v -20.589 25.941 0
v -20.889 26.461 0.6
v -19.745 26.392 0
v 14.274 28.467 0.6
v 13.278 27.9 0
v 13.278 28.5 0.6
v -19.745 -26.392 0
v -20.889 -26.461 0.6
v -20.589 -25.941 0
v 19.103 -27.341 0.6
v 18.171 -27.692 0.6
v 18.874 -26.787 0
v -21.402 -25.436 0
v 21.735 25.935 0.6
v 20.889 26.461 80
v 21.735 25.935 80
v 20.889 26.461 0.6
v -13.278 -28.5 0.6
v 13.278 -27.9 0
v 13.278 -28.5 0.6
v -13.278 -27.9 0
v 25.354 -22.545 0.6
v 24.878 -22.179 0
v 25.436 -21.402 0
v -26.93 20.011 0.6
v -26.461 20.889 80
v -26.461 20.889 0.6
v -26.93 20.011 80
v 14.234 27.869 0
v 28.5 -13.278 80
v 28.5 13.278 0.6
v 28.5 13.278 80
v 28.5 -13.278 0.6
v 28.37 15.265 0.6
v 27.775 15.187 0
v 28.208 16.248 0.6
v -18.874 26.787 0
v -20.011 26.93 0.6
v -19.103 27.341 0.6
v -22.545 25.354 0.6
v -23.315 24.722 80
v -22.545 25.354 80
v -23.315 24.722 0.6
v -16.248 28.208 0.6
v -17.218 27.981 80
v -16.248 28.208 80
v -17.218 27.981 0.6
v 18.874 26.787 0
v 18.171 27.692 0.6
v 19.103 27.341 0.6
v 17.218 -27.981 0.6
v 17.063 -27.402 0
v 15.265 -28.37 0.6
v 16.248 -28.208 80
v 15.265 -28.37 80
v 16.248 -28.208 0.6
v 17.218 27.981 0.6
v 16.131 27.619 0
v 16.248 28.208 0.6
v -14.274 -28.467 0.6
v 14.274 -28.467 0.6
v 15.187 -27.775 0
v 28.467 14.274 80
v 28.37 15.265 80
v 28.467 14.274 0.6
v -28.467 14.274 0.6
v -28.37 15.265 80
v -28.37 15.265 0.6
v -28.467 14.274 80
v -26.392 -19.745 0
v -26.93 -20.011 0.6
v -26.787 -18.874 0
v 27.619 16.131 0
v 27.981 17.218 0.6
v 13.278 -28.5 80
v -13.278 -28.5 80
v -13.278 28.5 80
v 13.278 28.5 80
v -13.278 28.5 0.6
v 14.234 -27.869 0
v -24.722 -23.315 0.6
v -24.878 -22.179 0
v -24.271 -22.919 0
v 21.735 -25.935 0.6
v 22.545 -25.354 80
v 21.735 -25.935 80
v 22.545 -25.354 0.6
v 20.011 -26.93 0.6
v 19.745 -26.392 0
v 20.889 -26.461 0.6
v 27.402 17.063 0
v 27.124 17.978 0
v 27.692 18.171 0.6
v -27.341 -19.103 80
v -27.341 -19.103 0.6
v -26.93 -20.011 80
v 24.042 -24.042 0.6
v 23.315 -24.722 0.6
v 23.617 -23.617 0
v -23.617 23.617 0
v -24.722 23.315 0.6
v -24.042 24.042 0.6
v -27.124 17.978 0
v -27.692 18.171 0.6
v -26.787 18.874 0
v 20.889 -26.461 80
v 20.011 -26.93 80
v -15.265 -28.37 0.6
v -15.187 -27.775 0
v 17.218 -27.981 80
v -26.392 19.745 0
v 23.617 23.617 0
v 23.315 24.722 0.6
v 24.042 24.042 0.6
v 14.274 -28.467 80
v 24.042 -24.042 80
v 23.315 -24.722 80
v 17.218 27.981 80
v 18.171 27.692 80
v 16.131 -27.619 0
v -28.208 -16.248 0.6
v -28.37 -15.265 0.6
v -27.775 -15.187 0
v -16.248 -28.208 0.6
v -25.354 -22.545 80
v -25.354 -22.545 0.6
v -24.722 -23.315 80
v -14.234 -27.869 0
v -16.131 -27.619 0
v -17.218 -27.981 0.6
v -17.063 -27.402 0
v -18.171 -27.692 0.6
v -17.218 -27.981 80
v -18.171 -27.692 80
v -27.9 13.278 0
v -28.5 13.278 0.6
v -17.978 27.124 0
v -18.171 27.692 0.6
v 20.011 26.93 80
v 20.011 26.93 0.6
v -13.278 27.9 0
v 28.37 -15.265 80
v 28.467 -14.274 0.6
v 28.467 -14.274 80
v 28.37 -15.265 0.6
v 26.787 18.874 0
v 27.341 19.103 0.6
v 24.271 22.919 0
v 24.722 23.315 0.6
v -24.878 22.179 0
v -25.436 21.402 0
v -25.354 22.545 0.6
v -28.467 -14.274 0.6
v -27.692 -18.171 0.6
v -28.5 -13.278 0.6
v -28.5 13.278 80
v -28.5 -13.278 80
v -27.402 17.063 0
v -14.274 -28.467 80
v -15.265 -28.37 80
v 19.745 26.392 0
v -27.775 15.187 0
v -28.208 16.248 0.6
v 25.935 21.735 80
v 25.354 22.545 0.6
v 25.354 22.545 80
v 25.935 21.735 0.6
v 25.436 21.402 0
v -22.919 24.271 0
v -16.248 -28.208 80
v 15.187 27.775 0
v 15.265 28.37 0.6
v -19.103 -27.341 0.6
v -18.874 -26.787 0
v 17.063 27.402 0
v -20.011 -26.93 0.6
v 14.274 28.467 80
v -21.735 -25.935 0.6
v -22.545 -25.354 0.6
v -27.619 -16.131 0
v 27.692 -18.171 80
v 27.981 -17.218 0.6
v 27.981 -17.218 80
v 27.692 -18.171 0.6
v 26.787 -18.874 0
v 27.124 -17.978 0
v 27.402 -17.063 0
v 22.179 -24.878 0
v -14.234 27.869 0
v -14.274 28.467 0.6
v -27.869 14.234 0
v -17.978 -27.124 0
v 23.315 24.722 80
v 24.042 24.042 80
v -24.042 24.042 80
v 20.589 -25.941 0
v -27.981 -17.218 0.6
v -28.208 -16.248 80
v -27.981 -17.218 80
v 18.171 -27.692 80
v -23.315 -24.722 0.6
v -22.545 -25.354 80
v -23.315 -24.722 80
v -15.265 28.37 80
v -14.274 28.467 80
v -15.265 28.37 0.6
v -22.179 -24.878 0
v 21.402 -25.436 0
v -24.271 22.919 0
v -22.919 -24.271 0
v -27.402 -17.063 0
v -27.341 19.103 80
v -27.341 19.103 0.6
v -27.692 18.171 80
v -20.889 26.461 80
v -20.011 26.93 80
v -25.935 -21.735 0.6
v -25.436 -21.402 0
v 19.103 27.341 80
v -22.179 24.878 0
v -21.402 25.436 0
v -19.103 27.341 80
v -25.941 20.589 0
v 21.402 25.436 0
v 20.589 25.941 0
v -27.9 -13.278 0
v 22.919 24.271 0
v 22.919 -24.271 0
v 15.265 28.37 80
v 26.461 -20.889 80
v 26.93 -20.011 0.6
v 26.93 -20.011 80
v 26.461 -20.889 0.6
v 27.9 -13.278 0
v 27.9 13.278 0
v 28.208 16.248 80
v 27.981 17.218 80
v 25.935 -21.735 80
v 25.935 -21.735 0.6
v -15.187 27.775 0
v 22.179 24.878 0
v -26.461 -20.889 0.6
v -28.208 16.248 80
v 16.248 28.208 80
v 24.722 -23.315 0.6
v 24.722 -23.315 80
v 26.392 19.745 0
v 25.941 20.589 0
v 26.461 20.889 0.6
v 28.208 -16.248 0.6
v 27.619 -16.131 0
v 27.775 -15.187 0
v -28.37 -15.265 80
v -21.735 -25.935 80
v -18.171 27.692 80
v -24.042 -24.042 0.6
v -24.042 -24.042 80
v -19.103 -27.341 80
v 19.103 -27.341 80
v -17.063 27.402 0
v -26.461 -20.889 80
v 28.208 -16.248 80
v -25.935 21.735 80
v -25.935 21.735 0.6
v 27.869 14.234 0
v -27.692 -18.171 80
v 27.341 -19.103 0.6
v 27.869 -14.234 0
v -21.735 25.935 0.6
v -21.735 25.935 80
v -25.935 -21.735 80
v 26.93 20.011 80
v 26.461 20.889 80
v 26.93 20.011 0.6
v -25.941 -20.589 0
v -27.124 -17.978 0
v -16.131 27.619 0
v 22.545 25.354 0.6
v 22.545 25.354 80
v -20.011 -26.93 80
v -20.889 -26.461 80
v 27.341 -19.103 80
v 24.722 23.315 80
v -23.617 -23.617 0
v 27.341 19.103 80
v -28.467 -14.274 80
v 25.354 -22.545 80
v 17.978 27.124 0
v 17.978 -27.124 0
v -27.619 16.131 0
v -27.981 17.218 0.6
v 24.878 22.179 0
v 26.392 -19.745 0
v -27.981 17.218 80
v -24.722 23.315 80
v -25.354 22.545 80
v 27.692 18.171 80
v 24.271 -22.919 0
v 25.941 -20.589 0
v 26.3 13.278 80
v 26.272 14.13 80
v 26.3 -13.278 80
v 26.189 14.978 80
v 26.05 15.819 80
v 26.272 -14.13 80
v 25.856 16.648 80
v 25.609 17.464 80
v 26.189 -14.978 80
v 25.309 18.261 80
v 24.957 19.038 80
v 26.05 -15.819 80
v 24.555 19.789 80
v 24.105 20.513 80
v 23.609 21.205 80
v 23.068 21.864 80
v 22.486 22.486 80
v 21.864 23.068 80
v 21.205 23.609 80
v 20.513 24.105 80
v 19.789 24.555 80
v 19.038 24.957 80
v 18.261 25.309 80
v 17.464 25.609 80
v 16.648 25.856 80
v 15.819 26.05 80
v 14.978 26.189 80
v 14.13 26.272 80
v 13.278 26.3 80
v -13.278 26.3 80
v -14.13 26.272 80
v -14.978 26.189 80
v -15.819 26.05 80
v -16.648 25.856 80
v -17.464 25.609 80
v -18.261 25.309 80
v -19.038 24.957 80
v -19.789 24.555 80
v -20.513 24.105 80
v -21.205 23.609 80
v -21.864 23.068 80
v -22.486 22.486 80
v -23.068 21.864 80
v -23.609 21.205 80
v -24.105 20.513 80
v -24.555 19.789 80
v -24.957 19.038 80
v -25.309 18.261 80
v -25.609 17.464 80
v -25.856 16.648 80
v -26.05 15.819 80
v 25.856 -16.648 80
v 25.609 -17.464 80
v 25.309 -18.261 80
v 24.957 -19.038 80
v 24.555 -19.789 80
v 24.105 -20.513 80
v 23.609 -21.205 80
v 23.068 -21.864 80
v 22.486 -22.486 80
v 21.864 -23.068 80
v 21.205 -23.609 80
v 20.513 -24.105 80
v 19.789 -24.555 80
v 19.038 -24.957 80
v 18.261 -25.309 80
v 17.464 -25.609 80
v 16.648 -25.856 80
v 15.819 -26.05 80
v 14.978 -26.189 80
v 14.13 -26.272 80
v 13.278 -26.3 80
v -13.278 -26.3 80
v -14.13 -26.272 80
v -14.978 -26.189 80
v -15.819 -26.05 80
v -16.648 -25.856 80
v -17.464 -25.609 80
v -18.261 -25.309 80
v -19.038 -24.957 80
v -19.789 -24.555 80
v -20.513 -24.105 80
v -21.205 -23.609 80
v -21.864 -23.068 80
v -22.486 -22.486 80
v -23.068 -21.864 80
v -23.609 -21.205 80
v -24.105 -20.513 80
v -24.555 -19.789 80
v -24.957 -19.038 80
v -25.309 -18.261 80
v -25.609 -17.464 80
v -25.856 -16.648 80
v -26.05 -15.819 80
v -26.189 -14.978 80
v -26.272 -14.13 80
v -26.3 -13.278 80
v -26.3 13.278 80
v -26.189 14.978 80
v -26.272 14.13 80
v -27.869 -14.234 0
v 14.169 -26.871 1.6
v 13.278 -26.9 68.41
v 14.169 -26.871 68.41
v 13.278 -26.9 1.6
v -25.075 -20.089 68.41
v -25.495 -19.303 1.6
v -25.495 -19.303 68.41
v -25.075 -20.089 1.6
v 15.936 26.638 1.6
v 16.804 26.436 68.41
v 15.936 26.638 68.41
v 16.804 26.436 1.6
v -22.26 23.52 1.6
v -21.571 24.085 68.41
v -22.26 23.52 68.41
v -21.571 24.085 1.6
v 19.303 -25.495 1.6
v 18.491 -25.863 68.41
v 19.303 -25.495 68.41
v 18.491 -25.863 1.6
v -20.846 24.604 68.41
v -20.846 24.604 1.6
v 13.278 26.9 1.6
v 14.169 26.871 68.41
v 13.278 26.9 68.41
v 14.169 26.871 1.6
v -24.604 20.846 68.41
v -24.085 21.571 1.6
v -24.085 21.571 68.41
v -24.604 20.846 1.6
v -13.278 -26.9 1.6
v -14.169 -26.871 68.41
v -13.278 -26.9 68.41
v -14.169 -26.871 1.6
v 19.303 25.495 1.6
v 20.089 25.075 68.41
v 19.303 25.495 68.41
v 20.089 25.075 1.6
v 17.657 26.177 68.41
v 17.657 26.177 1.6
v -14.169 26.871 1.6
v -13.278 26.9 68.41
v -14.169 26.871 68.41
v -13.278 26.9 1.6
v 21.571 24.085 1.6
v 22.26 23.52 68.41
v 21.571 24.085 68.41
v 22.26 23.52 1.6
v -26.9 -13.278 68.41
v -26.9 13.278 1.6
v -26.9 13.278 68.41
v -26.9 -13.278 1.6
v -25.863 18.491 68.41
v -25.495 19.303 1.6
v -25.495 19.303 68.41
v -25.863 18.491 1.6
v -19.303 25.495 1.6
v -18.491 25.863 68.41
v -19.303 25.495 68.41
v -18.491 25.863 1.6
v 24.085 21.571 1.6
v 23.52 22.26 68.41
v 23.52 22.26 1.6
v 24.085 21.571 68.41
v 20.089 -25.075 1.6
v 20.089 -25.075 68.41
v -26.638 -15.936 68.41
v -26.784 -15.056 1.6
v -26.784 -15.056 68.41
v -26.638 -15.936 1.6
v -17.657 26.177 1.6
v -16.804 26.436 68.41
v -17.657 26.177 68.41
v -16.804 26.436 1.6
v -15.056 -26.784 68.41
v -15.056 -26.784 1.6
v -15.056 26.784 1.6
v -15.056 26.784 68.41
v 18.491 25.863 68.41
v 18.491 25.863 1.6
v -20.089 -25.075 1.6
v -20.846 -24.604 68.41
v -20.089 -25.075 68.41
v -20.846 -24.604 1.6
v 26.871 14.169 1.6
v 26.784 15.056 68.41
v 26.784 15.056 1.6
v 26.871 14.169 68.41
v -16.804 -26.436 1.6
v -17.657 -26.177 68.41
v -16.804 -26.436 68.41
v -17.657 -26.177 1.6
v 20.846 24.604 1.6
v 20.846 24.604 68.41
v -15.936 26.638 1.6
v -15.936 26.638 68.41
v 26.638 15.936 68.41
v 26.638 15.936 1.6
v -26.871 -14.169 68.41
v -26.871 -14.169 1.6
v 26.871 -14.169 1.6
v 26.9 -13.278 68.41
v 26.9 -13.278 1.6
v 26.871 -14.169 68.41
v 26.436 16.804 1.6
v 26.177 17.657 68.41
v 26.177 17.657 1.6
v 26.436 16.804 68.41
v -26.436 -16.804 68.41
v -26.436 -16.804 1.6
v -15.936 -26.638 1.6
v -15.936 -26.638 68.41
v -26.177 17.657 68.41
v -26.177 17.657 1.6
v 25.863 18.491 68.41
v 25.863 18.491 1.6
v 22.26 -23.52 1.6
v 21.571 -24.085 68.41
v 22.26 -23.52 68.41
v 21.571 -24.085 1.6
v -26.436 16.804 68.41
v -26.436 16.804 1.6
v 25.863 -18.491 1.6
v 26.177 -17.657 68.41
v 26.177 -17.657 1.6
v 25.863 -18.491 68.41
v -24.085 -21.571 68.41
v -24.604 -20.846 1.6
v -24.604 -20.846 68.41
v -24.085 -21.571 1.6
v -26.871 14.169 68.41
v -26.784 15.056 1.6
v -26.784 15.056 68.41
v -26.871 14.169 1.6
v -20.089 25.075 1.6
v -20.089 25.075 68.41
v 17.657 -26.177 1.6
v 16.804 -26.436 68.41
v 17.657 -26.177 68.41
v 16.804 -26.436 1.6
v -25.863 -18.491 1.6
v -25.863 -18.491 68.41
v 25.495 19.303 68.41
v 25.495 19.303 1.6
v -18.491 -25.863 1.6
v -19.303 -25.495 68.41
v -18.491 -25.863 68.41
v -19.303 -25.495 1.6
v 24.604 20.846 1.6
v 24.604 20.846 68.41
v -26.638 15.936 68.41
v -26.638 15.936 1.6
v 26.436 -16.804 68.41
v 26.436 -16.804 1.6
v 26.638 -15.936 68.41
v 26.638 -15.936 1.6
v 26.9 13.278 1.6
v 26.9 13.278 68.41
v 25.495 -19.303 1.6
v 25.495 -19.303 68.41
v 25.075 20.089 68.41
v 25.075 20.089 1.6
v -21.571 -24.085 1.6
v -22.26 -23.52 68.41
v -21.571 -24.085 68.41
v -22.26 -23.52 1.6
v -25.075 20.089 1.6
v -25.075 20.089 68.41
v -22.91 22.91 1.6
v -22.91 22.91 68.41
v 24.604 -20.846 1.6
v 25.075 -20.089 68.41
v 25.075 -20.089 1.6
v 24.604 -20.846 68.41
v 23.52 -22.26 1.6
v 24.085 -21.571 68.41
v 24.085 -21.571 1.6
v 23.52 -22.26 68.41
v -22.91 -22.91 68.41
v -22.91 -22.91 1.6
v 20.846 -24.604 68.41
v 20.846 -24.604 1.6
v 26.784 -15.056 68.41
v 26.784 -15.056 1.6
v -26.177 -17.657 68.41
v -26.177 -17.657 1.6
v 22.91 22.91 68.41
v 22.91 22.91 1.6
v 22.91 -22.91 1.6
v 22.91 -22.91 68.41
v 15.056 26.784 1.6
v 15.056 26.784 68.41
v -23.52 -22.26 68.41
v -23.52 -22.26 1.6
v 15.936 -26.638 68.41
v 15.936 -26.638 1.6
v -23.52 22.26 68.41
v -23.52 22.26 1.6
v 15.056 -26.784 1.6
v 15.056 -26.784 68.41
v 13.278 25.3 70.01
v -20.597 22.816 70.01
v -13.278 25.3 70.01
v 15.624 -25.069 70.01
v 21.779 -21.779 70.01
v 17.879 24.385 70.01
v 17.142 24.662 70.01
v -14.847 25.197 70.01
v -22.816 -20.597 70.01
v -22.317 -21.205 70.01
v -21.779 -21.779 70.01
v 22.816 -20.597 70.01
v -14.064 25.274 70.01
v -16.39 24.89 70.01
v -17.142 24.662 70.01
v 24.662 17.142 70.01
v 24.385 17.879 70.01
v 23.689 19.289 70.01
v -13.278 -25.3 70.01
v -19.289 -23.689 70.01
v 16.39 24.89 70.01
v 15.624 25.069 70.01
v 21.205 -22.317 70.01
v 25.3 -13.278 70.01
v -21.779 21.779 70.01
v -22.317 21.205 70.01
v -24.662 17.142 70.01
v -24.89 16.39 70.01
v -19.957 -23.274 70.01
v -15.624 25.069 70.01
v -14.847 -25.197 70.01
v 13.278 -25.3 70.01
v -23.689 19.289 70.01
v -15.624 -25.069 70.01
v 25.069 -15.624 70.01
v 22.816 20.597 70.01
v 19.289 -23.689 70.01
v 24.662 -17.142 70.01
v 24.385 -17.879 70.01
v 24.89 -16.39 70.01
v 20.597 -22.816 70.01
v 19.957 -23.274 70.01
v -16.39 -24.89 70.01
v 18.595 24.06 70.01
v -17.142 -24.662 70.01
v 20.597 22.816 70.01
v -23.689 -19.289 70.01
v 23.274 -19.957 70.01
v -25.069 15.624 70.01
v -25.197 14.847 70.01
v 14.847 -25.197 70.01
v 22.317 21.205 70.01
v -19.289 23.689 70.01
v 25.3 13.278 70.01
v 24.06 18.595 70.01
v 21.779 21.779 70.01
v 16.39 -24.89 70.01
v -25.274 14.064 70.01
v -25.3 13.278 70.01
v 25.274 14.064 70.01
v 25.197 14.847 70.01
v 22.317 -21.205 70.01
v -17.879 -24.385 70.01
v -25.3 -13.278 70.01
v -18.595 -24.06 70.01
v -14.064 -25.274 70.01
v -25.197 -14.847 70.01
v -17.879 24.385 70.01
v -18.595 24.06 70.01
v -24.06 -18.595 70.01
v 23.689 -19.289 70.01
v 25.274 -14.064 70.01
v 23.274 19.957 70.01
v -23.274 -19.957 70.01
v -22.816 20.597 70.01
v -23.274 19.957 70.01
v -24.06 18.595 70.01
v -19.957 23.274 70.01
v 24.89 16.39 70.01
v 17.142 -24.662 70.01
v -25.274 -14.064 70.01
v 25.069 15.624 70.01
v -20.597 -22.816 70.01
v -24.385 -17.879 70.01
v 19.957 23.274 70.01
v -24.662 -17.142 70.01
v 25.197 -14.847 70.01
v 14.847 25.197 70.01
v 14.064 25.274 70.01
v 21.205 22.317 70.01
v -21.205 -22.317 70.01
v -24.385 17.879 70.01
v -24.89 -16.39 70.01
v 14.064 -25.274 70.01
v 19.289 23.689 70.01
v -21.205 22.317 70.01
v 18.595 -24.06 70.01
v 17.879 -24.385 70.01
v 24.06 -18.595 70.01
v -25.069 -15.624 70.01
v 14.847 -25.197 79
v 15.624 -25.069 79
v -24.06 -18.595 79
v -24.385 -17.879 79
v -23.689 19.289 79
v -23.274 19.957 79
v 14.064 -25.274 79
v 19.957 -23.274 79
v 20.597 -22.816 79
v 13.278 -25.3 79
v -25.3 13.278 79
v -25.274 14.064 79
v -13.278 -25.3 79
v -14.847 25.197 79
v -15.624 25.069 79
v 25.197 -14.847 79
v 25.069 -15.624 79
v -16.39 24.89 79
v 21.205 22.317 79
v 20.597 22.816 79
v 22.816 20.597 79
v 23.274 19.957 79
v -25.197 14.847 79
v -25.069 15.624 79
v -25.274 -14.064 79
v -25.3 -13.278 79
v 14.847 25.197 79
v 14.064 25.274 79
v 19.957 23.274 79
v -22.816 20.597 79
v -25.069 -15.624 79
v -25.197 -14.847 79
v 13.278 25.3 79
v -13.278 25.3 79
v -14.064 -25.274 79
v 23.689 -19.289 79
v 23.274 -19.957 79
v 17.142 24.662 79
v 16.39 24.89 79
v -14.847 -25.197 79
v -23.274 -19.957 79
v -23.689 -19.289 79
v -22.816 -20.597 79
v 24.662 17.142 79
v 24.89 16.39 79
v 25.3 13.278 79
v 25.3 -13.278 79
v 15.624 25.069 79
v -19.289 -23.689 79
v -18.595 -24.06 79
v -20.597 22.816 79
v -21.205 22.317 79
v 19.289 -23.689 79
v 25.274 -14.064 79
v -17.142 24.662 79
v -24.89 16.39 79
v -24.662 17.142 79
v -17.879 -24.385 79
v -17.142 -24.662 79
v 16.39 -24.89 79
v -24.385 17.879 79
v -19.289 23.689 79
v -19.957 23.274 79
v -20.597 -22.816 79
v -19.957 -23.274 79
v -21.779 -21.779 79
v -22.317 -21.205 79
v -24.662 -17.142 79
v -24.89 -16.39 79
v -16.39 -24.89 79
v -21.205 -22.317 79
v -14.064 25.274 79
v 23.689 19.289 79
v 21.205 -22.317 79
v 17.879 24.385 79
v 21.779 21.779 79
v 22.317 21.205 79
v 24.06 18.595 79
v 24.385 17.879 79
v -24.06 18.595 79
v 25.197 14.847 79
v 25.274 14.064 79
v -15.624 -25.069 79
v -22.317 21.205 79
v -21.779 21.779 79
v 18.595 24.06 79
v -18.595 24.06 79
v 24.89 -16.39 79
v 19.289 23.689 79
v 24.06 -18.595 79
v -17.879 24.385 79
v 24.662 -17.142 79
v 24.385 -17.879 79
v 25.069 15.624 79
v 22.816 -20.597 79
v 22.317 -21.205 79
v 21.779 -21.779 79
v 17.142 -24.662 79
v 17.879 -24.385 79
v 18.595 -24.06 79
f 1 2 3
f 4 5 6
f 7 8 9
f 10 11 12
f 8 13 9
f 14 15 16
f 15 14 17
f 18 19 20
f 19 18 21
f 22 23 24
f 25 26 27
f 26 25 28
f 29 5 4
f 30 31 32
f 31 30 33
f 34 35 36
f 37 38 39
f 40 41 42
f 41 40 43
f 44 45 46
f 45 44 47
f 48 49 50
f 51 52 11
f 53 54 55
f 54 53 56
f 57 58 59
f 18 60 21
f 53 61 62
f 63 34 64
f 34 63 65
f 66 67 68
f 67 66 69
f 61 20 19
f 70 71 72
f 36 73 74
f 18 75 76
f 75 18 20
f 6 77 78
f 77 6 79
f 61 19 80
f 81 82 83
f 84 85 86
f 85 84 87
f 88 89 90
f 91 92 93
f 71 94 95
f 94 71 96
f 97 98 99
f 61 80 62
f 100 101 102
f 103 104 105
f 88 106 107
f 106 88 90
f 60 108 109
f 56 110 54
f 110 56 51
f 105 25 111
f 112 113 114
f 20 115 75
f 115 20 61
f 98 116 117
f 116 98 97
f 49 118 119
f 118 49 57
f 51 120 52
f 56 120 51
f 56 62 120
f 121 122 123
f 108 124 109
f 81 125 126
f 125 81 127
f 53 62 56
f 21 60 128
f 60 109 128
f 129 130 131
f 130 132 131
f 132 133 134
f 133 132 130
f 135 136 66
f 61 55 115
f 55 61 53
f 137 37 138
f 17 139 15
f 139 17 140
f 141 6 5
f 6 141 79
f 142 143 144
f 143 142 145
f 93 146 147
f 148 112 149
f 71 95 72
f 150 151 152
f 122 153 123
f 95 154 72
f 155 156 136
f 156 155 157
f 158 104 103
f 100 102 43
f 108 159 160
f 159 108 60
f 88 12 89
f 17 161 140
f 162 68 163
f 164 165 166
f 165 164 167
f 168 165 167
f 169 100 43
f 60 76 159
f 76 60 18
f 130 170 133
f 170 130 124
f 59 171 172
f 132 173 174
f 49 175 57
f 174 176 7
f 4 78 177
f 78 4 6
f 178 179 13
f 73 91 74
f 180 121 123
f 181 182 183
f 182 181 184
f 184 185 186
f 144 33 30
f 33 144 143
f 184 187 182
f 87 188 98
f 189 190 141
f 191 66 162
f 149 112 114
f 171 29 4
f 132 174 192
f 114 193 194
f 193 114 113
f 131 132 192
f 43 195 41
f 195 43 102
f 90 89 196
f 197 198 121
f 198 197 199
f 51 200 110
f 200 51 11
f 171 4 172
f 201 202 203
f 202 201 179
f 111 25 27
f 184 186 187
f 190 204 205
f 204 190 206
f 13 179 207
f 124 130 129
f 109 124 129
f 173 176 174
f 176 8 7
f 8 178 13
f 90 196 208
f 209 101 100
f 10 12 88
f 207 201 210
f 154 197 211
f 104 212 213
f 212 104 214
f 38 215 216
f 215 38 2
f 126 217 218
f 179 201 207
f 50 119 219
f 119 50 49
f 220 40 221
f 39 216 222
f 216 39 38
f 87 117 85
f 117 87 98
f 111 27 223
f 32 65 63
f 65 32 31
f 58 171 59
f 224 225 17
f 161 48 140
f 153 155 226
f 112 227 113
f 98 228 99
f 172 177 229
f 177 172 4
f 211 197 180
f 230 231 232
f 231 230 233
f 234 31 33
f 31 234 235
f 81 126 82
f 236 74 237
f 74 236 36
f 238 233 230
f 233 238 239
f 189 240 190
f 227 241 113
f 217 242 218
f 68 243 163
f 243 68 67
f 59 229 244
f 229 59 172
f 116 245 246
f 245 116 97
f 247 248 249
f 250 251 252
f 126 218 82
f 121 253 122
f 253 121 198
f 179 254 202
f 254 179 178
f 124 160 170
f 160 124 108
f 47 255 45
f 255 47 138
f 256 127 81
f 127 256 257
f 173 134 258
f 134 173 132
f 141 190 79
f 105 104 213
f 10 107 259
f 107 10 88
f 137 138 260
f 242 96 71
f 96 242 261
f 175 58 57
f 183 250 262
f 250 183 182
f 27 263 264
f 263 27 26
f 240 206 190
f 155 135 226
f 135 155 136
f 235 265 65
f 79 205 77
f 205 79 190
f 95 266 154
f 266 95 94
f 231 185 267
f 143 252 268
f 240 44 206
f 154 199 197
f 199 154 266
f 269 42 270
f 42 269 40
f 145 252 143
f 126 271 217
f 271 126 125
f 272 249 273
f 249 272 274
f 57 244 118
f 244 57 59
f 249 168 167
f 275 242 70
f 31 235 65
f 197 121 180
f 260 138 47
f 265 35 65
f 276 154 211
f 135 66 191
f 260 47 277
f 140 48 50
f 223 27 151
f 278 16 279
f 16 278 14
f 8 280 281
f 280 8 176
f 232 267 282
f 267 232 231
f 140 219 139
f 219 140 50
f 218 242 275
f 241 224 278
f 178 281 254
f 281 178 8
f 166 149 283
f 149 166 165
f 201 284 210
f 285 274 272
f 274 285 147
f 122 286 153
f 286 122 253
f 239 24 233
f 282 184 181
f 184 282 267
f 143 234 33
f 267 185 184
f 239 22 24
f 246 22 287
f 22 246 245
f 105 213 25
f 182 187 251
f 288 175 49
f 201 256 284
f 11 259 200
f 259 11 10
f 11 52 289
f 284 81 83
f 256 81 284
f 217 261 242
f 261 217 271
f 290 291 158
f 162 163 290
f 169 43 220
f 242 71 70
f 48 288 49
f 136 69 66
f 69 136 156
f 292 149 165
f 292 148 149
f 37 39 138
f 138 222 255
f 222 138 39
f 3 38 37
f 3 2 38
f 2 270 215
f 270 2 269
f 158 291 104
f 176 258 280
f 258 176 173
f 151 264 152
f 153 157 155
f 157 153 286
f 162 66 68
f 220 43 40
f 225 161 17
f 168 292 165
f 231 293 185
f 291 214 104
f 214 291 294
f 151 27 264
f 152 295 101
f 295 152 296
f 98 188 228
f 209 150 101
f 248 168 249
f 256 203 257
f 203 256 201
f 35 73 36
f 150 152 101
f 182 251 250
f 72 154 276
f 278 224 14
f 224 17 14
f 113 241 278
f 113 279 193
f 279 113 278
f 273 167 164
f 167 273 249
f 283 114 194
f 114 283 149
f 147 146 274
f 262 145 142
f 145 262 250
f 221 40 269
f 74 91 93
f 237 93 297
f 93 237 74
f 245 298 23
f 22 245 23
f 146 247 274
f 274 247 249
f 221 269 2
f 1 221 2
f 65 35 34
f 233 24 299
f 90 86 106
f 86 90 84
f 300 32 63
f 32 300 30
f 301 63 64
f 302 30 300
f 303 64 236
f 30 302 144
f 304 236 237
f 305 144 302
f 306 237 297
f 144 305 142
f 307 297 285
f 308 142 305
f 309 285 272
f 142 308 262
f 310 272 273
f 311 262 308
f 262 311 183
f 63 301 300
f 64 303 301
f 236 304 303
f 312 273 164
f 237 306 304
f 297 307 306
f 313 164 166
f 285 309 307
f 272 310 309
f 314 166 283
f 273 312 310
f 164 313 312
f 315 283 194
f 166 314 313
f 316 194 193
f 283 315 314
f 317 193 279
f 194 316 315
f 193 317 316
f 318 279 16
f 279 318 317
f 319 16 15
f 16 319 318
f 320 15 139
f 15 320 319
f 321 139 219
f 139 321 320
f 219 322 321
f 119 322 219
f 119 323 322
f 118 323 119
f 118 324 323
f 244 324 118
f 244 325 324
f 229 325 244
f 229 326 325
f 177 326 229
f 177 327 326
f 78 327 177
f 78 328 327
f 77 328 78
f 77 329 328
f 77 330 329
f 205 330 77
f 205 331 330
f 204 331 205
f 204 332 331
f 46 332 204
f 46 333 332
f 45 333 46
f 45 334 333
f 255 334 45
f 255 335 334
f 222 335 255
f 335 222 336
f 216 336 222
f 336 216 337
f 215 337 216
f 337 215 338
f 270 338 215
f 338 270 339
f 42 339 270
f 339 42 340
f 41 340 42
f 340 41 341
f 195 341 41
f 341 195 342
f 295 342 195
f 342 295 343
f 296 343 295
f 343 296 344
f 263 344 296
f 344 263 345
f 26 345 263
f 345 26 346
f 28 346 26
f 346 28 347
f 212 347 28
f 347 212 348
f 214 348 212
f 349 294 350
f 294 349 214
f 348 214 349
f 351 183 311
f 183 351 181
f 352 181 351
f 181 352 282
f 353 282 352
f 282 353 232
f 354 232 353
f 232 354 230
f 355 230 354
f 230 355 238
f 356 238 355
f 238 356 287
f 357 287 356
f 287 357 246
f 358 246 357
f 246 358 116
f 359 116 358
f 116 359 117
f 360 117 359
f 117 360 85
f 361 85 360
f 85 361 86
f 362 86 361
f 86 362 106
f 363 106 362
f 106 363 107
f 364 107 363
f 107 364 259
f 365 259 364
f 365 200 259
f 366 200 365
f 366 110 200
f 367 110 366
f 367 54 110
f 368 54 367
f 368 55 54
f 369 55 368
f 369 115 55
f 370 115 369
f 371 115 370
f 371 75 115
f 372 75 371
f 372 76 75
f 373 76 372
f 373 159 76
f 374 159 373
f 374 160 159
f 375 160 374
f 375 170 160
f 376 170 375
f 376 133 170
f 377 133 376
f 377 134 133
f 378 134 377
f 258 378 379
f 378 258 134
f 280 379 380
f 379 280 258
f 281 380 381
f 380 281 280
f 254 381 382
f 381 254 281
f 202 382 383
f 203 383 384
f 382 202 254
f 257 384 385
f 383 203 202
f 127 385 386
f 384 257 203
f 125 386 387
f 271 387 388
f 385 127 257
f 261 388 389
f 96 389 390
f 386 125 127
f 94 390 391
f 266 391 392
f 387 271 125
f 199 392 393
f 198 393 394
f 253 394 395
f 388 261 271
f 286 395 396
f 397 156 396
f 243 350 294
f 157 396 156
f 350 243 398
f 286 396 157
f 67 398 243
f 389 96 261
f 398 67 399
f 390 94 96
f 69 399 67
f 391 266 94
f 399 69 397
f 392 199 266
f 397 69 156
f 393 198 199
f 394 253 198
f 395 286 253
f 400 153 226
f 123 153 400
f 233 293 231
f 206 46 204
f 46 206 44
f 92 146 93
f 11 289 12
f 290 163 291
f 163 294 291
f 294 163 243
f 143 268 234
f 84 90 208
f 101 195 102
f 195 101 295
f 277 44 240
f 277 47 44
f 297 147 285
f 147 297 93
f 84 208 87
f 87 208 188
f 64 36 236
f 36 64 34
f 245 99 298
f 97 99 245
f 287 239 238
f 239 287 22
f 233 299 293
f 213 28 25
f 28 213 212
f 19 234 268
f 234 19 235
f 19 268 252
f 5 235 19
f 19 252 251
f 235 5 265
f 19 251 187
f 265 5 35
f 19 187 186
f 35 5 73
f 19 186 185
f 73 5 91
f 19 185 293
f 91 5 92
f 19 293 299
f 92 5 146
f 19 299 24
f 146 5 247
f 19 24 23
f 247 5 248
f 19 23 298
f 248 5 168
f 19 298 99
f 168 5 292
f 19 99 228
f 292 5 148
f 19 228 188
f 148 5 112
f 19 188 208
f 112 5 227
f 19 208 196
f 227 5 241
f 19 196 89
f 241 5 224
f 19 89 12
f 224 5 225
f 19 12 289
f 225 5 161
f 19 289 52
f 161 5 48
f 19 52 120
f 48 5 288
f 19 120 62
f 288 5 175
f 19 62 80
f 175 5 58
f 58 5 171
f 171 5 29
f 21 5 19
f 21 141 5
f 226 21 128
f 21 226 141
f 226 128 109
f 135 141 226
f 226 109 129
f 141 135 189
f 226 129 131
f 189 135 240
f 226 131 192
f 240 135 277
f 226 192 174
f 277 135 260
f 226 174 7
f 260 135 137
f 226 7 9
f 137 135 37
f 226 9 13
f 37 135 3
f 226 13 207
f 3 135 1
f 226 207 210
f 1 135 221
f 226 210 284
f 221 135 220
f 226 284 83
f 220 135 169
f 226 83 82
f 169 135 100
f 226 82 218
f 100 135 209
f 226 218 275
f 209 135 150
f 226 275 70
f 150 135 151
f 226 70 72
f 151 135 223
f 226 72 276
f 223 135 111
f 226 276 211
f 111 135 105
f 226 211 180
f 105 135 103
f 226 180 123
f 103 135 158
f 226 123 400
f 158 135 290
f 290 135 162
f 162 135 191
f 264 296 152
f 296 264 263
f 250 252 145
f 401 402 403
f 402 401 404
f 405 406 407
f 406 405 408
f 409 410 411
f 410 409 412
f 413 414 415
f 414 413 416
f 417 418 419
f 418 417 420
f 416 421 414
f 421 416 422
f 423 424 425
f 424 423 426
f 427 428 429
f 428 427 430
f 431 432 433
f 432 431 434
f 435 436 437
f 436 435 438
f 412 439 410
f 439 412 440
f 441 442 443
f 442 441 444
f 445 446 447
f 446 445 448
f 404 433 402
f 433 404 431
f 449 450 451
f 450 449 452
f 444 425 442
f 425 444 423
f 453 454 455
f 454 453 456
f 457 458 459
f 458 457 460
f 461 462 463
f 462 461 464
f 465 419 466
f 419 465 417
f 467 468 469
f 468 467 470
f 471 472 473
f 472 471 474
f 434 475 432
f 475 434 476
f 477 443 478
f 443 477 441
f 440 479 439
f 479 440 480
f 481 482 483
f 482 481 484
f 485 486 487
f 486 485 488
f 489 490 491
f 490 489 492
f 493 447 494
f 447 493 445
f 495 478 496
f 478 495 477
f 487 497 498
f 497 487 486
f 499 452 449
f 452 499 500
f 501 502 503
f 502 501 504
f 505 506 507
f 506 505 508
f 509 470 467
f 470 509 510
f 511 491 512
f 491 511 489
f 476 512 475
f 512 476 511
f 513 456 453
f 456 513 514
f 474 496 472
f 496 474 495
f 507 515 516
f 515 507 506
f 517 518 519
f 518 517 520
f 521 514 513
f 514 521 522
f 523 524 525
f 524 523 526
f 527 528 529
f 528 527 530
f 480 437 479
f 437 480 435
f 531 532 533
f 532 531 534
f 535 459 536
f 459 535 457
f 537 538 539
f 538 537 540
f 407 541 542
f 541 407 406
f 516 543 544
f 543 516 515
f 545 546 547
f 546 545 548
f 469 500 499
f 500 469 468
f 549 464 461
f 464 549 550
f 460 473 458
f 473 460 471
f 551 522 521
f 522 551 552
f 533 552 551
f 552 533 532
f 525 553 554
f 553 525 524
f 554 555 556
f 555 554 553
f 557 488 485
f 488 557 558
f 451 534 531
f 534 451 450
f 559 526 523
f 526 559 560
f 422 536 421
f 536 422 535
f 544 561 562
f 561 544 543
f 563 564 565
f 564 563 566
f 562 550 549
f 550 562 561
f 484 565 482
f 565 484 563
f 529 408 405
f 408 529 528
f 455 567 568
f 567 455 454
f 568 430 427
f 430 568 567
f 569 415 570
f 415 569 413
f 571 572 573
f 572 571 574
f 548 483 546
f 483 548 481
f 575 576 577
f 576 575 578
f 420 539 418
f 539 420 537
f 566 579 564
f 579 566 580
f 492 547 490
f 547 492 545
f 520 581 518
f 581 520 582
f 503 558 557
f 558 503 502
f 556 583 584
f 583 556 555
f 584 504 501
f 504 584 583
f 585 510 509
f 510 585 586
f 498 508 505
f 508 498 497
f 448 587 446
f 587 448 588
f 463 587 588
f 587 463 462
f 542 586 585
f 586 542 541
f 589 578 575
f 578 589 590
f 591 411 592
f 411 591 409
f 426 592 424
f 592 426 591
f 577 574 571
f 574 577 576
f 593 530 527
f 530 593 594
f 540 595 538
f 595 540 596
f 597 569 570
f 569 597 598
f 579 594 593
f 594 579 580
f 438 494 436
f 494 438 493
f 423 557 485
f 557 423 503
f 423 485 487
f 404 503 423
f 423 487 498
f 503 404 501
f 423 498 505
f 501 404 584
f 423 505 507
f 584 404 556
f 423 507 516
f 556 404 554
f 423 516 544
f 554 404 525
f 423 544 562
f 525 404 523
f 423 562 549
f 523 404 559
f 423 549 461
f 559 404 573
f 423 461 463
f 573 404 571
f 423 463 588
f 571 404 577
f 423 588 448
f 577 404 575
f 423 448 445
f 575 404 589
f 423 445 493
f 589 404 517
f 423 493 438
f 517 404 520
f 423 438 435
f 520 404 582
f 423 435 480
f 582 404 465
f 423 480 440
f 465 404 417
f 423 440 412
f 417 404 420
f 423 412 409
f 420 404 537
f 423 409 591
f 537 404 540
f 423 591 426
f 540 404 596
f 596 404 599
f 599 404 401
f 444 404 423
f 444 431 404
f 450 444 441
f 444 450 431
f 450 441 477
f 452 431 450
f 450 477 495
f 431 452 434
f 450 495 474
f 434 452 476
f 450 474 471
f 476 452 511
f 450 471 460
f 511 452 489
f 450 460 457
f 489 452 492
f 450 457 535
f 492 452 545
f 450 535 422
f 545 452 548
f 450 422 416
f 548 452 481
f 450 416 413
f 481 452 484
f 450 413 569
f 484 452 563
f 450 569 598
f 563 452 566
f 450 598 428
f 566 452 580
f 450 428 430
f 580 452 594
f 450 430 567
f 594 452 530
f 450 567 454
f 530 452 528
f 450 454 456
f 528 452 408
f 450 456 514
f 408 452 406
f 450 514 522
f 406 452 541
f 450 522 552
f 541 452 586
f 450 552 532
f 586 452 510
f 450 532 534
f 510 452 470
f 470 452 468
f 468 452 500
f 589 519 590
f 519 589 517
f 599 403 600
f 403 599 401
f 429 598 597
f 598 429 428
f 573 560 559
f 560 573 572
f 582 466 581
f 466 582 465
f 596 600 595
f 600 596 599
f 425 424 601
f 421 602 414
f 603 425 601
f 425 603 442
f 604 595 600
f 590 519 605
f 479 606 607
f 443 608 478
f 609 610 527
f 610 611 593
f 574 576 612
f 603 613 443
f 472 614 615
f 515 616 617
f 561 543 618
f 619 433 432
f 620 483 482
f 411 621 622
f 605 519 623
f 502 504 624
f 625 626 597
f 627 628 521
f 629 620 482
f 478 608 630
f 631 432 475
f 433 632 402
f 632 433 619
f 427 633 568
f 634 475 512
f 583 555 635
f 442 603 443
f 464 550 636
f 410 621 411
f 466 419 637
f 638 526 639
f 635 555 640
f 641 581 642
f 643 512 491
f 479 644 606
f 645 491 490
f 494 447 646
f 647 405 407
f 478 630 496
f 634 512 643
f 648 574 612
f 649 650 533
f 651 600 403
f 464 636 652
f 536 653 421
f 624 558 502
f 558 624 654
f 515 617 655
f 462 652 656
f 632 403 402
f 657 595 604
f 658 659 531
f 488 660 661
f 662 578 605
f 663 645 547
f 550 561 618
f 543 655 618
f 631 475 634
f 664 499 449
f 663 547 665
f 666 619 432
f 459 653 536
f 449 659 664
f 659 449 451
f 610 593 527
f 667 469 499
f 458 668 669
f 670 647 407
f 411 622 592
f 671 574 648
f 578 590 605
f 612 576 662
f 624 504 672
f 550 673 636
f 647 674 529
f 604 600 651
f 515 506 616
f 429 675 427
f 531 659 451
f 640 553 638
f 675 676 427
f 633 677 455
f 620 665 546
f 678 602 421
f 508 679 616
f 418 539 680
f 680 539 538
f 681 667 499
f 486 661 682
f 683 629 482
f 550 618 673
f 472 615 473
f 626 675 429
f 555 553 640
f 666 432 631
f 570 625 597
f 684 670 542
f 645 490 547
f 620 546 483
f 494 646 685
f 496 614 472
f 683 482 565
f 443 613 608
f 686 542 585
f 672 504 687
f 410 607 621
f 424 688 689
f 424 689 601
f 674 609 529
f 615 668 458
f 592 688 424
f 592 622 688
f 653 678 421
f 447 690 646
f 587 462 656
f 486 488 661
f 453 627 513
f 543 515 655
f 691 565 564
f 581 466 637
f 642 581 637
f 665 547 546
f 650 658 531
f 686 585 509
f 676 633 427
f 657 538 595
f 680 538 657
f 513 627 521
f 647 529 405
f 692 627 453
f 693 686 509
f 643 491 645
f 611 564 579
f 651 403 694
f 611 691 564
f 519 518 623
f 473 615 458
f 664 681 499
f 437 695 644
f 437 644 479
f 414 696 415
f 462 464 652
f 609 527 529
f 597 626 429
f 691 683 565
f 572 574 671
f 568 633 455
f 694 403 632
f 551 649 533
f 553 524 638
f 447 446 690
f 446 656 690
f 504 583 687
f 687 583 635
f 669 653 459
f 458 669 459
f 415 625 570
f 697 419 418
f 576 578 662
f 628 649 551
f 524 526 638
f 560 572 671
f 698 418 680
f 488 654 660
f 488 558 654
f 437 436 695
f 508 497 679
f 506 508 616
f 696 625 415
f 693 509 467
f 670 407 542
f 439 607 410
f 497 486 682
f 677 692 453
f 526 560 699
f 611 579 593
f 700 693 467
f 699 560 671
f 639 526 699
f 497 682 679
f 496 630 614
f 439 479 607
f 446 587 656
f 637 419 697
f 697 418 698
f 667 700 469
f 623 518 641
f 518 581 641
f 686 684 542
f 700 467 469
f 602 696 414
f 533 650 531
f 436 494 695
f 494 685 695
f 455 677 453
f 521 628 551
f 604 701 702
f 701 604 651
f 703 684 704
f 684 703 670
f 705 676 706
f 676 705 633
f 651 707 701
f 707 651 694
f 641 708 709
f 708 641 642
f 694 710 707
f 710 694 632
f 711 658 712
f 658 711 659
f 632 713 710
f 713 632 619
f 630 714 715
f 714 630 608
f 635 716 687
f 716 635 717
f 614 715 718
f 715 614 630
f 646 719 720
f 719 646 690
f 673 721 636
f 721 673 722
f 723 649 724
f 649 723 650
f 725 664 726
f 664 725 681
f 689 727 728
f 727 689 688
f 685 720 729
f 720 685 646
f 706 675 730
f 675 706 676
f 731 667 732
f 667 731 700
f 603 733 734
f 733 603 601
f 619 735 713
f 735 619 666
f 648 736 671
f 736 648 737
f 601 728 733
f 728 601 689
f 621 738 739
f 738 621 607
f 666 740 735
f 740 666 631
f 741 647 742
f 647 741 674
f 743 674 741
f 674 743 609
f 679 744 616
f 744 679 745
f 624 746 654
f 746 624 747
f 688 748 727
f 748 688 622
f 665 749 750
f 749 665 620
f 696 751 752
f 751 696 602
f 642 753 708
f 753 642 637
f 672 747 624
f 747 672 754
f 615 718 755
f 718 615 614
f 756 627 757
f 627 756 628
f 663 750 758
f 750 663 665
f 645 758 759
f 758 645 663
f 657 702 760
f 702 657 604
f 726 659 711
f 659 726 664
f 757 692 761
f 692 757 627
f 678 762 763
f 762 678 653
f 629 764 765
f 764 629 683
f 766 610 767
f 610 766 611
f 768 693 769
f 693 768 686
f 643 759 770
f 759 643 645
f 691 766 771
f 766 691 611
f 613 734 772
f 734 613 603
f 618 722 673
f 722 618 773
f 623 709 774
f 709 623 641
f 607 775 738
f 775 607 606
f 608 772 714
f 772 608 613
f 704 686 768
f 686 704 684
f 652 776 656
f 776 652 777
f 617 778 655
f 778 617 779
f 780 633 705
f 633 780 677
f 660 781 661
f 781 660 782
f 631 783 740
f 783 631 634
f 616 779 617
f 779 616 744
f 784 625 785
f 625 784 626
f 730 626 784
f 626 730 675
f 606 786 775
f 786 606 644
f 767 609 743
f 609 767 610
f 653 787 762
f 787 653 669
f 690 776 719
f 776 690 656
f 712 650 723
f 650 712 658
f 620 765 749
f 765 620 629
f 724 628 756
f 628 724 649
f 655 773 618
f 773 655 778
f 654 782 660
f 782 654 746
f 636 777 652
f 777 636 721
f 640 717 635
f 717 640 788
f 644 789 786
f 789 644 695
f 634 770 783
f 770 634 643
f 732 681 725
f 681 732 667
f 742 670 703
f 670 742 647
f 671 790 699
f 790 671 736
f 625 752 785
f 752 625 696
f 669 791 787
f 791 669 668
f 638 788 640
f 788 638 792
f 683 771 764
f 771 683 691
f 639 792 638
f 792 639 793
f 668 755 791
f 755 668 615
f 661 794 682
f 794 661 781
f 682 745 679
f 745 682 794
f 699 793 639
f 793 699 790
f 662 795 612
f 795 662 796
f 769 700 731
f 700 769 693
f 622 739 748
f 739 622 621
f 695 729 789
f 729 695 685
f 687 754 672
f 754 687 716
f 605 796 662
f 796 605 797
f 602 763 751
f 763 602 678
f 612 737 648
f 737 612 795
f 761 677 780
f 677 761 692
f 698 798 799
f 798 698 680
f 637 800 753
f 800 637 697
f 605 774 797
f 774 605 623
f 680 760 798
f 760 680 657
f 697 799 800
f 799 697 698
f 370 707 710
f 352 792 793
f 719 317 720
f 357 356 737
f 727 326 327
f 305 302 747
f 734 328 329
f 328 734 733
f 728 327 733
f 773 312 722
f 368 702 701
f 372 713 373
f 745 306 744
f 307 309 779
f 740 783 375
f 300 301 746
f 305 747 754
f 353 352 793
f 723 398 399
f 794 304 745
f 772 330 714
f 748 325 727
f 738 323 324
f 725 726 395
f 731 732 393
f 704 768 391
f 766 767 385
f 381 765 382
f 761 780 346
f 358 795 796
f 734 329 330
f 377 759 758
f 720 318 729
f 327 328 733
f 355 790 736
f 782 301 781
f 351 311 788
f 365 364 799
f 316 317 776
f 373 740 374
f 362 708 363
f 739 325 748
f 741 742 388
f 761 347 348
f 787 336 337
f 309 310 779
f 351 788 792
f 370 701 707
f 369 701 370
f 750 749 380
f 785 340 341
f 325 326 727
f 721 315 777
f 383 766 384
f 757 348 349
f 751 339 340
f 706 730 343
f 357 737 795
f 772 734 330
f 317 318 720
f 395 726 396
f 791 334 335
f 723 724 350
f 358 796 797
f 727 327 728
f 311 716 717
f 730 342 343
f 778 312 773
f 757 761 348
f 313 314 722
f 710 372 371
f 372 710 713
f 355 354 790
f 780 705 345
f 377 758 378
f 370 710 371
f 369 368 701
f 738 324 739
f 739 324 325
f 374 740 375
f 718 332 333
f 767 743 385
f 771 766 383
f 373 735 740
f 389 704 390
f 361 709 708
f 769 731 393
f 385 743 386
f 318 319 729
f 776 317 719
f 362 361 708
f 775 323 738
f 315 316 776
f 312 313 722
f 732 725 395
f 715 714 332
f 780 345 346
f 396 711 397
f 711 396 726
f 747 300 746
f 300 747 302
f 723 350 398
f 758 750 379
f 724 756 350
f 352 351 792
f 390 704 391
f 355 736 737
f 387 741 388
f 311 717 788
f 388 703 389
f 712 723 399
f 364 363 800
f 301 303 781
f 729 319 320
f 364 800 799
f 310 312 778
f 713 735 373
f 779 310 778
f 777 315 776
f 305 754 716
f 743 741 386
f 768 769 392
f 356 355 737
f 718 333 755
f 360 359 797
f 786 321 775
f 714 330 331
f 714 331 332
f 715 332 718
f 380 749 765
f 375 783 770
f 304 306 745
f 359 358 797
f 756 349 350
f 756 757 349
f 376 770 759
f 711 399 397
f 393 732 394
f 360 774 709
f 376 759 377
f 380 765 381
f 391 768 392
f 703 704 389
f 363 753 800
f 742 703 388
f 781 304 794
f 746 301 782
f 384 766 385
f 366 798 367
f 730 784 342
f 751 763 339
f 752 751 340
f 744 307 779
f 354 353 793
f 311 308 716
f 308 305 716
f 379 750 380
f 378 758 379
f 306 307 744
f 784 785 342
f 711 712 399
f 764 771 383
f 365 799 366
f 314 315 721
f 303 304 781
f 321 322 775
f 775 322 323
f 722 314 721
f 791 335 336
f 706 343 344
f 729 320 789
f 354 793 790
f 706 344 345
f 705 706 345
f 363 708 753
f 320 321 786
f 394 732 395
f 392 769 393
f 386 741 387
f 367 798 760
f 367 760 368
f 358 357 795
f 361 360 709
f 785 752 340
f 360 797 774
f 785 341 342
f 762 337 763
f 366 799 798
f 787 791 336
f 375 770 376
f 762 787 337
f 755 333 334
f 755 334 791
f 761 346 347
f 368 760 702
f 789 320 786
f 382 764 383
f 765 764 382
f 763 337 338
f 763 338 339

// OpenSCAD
// Snoeppotje voor Meike
// Een potje voor onder het oude bamboe dekseltje.
// Alle maten in millimeters. Pas de waarden hieronder aan en exporteer
// opnieuw naar STL (F6, daarna F7) als iets niet past.
//
// Afdichting: de siliconen ring steekt rondom 4 mm buiten het hout uit.
// Bij het sluiten vouwt dat randje naar beneden, de opening in, en wordt
// het tussen het hout en de binnenwand van de kraag geklemd.

/* [Dekseltje (gemeten)] */
// Breedte van het onderste houten deel dat in het potje zakt
plug_breedte = 49;
// Diagonaal van dat deel (gemeten: 60 mm)
plug_diagonaal = 60;
// Buitenmaat van de siliconen ring
ring_buitenmaat = 57;
// Dikte van de siliconen ring
ring_dikte = 1;

/* [Afdichting] */
// Hoeveel de ring wordt samengedrukt tussen hout en wand (per kant).
// Groter = strakker en beter dicht, kleiner = makkelijker open.
ring_klem = 0.2;
// Diepte van de kraag waarin de ring afdicht
kraag_hoogte = 10;
// Afschuining bovenaan de opening, zodat de ring netjes naar binnen vouwt
inloop = 1;

/* [Potje] */
// Totale hoogte van het potje (zonder deksel)
hoogte = 80;
// Buitenmaat van het potje
buiten = 57;
// Wanddikte onder de kraag (1,6 mm = 4 lijnen met een 0,4 mm nozzle)
wand = 1.6;
// Dikte van de bodem
bodem = 1.6;
// Kleine afschuining onderaan tegen "olifantenvoet"
voet_afschuining = 0.6;

/* [Verborgen] */
$fn = 96;

// Hoekstraal uit zijde en diagonaal:
// diagonaal = z*sqrt(2) - 2r*(sqrt(2)-1)  =>  r = (z*sqrt(2) - d) / (2*(sqrt(2)-1))
plug_straal = (plug_breedte * sqrt(2) - plug_diagonaal) / (2 * (sqrt(2) - 1));

// Opening = hout + aan elke kant de (iets samengedrukte) ring
opening = plug_breedte + 2 * (ring_dikte - ring_klem);
binnen  = buiten - 2 * wand;
kraag_afschuining = (binnen - opening) / 2; // 45 graden: print zonder support

echo(str("Hoekstraal dekseltje: ", plug_straal, " mm"));
echo(str("Opening bovenin: ", opening, " mm"));

// Afgerond vierkant, gecentreerd, met zijde z en hoekstraal r
module afgerond_vierkant(z, r) {
    offset(r = r) square(z - 2 * r, center = true);
}

// Alle vormen zijn concentrisch met het dekseltje.
function straal_bij(z) = plug_straal + (z - plug_breedte) / 2;

module laag(z, h, maat) {
    translate([0, 0, z]) linear_extrude(h) afgerond_vierkant(maat, straal_bij(maat));
}

module potje() {
    top_wand = hoogte - kraag_hoogte - kraag_afschuining;
    difference() {
        // Buitenkant, met kleine afschuining onderaan
        hull() {
            laag(0, 0.01, buiten - 2 * voet_afschuining);
            laag(voet_afschuining, hoogte - voet_afschuining, buiten);
        }
        // Binnenruimte
        laag(bodem, top_wand - bodem + 0.01, binnen);
        hull() {
            laag(top_wand, 0.01, binnen);
            laag(hoogte - kraag_hoogte, 0.01, opening);
        }
        laag(hoogte - kraag_hoogte, kraag_hoogte + 1, opening);
        // Inloop bovenaan
        hull() {
            laag(hoogte - inloop, 0.01, opening);
            laag(hoogte, 0.01, opening + 2 * inloop);
        }
    }
}

potje();
